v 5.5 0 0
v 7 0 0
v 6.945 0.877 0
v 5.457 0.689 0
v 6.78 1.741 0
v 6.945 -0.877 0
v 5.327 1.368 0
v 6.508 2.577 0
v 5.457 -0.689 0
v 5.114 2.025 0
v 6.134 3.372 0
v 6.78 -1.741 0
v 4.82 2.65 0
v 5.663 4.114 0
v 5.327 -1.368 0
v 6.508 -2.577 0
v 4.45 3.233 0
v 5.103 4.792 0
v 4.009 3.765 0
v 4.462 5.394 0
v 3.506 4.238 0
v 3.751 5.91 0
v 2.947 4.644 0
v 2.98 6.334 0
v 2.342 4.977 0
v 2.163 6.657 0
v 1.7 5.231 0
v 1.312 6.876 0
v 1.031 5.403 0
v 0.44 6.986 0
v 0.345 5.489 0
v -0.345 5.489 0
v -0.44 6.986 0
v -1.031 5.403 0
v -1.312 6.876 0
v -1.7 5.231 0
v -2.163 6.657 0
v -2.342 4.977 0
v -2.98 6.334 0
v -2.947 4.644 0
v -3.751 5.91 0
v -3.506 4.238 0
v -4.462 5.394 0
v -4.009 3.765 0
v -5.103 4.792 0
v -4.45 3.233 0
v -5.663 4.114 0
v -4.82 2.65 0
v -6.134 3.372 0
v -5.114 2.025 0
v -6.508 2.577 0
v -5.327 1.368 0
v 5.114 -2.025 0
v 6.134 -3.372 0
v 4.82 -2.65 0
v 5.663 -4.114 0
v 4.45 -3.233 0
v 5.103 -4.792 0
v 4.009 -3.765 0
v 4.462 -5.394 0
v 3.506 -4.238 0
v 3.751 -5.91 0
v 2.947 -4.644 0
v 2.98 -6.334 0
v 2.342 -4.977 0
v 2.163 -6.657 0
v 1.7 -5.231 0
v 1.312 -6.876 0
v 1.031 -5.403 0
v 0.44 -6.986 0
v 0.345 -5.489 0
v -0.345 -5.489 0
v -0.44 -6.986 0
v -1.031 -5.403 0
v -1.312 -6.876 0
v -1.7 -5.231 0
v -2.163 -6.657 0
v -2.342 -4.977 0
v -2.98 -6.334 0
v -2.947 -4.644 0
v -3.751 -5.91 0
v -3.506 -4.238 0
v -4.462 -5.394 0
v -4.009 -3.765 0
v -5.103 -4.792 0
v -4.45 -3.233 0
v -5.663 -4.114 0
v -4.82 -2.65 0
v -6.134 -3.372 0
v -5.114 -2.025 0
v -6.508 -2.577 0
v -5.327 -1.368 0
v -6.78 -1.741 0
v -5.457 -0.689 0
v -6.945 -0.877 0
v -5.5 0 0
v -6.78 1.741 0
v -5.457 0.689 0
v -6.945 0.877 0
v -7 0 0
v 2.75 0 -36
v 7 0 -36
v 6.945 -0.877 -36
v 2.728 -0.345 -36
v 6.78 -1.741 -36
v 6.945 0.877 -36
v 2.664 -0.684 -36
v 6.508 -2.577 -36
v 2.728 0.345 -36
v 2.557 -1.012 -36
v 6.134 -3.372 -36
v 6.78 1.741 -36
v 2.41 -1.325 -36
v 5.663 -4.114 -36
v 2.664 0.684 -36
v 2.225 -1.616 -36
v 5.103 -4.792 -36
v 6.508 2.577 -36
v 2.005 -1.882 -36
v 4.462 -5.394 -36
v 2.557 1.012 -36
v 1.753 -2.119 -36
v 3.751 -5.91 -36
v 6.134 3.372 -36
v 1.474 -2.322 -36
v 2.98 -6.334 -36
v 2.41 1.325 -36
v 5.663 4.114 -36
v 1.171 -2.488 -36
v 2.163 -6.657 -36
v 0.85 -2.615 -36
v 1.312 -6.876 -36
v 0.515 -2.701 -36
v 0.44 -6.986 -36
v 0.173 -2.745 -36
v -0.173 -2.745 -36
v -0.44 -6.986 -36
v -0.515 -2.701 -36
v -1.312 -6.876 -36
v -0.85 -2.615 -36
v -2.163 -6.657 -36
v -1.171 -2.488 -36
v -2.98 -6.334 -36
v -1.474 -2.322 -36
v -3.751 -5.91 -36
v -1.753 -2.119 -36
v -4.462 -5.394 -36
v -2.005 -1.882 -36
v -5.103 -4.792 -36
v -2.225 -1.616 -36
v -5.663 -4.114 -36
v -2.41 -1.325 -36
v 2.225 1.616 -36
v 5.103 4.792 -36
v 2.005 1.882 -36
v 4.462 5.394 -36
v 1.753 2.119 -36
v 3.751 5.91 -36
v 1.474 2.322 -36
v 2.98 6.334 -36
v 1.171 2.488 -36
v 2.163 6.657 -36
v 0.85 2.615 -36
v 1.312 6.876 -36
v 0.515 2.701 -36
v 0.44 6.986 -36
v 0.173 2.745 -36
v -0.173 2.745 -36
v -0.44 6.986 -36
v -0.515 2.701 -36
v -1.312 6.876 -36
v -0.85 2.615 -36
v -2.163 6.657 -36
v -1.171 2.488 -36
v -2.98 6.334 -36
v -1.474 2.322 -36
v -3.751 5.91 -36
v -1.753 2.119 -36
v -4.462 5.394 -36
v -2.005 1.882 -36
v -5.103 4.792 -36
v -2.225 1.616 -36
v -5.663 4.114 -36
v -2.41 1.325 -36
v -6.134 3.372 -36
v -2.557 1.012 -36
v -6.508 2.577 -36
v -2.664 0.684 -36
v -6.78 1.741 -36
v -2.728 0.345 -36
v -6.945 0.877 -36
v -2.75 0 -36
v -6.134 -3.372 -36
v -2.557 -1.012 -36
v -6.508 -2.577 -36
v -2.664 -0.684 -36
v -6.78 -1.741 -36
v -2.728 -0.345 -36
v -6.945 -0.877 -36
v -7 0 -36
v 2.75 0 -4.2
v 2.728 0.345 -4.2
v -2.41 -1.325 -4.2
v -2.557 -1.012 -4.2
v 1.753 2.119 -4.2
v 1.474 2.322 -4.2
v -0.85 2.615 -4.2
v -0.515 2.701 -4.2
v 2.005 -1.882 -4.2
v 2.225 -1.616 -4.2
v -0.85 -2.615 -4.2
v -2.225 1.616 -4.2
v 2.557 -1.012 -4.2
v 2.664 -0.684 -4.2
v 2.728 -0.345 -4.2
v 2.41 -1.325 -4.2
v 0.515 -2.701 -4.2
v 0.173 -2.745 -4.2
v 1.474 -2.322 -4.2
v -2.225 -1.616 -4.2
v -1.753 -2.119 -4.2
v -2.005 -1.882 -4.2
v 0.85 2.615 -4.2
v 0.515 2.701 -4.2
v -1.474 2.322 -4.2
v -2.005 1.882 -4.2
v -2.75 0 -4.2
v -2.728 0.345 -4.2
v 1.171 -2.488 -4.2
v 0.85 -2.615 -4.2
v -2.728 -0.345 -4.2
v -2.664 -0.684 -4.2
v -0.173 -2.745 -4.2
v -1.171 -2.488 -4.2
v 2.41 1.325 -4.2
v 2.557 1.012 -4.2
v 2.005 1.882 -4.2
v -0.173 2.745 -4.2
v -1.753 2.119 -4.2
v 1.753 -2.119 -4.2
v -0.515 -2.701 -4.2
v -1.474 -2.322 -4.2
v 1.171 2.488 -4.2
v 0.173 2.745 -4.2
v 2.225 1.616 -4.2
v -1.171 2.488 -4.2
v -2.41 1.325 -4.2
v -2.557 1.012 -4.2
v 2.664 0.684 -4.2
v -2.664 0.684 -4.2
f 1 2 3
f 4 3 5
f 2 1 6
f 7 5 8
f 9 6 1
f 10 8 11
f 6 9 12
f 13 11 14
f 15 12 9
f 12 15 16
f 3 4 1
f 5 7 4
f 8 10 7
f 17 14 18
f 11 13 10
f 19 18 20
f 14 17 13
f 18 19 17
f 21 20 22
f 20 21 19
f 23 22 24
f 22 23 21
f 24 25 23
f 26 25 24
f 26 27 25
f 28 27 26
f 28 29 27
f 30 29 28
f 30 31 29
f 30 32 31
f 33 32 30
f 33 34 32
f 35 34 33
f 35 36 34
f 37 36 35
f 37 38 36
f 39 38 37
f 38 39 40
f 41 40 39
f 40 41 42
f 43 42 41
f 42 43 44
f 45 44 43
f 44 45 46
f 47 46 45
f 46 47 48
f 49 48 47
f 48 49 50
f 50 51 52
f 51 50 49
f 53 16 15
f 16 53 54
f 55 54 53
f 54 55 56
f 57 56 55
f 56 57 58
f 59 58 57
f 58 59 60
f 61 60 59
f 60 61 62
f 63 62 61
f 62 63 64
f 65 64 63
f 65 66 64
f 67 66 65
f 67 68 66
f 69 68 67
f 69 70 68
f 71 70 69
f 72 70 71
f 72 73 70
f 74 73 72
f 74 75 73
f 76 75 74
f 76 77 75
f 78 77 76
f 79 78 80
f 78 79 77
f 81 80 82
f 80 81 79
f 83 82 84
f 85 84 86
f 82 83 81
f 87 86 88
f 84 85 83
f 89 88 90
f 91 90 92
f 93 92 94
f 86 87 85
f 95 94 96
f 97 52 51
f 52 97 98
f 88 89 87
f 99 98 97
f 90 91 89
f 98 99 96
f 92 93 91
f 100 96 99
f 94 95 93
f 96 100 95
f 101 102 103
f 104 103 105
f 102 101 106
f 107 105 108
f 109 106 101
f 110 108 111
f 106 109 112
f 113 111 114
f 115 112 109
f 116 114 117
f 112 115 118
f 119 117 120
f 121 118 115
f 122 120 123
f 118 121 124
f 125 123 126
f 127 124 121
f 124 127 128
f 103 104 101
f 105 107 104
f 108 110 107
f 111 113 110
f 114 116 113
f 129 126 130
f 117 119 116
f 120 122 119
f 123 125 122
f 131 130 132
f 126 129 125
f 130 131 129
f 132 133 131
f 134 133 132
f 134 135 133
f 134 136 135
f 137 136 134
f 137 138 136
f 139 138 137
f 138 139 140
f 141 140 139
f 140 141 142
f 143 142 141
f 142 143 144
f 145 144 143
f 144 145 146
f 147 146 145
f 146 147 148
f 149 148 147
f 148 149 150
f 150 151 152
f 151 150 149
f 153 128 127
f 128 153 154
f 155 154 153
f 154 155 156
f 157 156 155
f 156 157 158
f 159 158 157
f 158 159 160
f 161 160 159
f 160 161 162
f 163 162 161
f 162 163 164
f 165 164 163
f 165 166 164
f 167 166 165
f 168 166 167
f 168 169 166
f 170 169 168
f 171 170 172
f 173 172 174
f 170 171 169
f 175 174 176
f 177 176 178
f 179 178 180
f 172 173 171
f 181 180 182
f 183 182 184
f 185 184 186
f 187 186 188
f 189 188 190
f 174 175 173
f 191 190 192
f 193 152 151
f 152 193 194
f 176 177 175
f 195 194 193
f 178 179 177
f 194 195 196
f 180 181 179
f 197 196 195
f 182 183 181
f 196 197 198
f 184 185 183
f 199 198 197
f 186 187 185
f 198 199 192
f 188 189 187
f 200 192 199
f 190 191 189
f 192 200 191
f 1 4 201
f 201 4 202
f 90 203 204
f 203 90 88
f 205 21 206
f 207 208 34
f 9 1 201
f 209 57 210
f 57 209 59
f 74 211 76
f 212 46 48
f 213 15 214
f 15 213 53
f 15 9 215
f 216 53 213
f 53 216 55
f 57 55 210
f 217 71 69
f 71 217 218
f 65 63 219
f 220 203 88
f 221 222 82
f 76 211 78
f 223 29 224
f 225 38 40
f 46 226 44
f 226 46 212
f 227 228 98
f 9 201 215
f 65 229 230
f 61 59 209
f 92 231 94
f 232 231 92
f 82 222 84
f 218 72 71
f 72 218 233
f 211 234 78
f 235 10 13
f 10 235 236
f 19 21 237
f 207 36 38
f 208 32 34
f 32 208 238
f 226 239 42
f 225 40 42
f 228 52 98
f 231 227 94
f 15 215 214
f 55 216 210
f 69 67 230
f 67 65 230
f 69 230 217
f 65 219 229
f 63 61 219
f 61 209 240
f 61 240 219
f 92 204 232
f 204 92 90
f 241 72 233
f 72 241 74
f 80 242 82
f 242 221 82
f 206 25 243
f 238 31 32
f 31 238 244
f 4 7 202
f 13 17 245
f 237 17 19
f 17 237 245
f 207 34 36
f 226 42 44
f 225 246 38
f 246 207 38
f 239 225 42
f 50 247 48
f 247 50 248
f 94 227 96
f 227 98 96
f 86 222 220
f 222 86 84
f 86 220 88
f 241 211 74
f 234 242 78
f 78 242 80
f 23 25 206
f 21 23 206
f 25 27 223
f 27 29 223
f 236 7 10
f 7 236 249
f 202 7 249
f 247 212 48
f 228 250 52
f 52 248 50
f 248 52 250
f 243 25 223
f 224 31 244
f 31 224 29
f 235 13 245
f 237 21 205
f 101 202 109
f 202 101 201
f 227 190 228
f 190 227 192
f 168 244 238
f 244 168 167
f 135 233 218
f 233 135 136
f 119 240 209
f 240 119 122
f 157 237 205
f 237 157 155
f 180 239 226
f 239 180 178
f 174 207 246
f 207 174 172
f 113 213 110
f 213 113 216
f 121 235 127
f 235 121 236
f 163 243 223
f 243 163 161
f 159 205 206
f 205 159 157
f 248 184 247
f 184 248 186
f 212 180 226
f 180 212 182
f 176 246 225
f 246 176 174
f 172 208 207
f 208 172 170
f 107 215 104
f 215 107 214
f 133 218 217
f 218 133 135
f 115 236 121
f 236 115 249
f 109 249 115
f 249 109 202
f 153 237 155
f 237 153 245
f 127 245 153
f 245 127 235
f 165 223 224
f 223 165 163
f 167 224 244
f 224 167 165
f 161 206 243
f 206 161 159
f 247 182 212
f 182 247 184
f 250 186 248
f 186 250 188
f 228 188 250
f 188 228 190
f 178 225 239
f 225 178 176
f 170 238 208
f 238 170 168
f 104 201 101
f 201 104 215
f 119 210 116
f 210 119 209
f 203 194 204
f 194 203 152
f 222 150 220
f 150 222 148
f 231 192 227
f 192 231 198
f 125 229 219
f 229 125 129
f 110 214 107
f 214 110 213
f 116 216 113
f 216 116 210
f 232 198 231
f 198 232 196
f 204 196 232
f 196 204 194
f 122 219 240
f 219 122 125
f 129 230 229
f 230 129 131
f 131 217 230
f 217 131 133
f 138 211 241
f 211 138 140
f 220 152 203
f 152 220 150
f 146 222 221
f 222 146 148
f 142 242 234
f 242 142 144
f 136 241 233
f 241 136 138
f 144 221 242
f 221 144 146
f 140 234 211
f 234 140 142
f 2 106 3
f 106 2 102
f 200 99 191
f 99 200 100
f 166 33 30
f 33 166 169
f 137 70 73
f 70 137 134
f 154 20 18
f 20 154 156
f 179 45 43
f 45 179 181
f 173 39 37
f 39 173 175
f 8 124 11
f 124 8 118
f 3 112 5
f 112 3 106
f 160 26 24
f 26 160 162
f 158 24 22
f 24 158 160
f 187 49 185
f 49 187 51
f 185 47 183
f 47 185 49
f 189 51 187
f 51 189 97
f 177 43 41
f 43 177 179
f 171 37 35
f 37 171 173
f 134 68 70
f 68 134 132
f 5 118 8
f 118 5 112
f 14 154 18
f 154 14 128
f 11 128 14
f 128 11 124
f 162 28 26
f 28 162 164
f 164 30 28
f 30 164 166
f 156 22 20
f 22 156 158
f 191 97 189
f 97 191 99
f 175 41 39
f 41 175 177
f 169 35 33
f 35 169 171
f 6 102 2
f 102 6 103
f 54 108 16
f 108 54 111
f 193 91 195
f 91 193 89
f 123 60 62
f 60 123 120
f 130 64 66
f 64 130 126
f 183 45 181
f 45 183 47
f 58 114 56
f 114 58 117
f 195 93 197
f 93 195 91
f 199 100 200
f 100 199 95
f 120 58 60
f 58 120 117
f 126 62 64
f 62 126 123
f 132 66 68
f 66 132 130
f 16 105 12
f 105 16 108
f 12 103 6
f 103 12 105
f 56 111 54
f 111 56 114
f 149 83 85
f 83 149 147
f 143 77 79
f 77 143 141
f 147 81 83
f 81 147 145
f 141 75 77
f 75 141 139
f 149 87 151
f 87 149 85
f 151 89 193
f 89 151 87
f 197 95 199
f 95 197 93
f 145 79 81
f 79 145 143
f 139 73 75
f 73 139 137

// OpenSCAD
$fn = 50;


difference() {
	union() {
		translate(v = [0, 0, -36.0000000000]) {
			cylinder(h = 36, r = 7.0000000000);
		}
		cylinder(h = 0, r = 17.0000000000);
	}
	union() {
		translate(v = [0, 0, 0]) {
			rotate(a = [0, 0, 0]) {
				difference() {
					union() {
						#translate(v = [0, 0, -36.0000000000]) {
							cylinder(h = 36, r = 2.2500000000);
						}
						#translate(v = [0, 0, -4.2000000000]) {
							cylinder(h = 4.2000000000, r1 = 2.7500000000, r2 = 5.5000000000);
						}
						#translate(v = [0, 0, -36.0000000000]) {
							cylinder(h = 36, r = 2.7500000000);
						}
						#translate(v = [0, 0, -36.0000000000]) {
							cylinder(h = 36, r = 2.2500000000);
						}
					}
					union();
				}
			}
		}
	}
}
